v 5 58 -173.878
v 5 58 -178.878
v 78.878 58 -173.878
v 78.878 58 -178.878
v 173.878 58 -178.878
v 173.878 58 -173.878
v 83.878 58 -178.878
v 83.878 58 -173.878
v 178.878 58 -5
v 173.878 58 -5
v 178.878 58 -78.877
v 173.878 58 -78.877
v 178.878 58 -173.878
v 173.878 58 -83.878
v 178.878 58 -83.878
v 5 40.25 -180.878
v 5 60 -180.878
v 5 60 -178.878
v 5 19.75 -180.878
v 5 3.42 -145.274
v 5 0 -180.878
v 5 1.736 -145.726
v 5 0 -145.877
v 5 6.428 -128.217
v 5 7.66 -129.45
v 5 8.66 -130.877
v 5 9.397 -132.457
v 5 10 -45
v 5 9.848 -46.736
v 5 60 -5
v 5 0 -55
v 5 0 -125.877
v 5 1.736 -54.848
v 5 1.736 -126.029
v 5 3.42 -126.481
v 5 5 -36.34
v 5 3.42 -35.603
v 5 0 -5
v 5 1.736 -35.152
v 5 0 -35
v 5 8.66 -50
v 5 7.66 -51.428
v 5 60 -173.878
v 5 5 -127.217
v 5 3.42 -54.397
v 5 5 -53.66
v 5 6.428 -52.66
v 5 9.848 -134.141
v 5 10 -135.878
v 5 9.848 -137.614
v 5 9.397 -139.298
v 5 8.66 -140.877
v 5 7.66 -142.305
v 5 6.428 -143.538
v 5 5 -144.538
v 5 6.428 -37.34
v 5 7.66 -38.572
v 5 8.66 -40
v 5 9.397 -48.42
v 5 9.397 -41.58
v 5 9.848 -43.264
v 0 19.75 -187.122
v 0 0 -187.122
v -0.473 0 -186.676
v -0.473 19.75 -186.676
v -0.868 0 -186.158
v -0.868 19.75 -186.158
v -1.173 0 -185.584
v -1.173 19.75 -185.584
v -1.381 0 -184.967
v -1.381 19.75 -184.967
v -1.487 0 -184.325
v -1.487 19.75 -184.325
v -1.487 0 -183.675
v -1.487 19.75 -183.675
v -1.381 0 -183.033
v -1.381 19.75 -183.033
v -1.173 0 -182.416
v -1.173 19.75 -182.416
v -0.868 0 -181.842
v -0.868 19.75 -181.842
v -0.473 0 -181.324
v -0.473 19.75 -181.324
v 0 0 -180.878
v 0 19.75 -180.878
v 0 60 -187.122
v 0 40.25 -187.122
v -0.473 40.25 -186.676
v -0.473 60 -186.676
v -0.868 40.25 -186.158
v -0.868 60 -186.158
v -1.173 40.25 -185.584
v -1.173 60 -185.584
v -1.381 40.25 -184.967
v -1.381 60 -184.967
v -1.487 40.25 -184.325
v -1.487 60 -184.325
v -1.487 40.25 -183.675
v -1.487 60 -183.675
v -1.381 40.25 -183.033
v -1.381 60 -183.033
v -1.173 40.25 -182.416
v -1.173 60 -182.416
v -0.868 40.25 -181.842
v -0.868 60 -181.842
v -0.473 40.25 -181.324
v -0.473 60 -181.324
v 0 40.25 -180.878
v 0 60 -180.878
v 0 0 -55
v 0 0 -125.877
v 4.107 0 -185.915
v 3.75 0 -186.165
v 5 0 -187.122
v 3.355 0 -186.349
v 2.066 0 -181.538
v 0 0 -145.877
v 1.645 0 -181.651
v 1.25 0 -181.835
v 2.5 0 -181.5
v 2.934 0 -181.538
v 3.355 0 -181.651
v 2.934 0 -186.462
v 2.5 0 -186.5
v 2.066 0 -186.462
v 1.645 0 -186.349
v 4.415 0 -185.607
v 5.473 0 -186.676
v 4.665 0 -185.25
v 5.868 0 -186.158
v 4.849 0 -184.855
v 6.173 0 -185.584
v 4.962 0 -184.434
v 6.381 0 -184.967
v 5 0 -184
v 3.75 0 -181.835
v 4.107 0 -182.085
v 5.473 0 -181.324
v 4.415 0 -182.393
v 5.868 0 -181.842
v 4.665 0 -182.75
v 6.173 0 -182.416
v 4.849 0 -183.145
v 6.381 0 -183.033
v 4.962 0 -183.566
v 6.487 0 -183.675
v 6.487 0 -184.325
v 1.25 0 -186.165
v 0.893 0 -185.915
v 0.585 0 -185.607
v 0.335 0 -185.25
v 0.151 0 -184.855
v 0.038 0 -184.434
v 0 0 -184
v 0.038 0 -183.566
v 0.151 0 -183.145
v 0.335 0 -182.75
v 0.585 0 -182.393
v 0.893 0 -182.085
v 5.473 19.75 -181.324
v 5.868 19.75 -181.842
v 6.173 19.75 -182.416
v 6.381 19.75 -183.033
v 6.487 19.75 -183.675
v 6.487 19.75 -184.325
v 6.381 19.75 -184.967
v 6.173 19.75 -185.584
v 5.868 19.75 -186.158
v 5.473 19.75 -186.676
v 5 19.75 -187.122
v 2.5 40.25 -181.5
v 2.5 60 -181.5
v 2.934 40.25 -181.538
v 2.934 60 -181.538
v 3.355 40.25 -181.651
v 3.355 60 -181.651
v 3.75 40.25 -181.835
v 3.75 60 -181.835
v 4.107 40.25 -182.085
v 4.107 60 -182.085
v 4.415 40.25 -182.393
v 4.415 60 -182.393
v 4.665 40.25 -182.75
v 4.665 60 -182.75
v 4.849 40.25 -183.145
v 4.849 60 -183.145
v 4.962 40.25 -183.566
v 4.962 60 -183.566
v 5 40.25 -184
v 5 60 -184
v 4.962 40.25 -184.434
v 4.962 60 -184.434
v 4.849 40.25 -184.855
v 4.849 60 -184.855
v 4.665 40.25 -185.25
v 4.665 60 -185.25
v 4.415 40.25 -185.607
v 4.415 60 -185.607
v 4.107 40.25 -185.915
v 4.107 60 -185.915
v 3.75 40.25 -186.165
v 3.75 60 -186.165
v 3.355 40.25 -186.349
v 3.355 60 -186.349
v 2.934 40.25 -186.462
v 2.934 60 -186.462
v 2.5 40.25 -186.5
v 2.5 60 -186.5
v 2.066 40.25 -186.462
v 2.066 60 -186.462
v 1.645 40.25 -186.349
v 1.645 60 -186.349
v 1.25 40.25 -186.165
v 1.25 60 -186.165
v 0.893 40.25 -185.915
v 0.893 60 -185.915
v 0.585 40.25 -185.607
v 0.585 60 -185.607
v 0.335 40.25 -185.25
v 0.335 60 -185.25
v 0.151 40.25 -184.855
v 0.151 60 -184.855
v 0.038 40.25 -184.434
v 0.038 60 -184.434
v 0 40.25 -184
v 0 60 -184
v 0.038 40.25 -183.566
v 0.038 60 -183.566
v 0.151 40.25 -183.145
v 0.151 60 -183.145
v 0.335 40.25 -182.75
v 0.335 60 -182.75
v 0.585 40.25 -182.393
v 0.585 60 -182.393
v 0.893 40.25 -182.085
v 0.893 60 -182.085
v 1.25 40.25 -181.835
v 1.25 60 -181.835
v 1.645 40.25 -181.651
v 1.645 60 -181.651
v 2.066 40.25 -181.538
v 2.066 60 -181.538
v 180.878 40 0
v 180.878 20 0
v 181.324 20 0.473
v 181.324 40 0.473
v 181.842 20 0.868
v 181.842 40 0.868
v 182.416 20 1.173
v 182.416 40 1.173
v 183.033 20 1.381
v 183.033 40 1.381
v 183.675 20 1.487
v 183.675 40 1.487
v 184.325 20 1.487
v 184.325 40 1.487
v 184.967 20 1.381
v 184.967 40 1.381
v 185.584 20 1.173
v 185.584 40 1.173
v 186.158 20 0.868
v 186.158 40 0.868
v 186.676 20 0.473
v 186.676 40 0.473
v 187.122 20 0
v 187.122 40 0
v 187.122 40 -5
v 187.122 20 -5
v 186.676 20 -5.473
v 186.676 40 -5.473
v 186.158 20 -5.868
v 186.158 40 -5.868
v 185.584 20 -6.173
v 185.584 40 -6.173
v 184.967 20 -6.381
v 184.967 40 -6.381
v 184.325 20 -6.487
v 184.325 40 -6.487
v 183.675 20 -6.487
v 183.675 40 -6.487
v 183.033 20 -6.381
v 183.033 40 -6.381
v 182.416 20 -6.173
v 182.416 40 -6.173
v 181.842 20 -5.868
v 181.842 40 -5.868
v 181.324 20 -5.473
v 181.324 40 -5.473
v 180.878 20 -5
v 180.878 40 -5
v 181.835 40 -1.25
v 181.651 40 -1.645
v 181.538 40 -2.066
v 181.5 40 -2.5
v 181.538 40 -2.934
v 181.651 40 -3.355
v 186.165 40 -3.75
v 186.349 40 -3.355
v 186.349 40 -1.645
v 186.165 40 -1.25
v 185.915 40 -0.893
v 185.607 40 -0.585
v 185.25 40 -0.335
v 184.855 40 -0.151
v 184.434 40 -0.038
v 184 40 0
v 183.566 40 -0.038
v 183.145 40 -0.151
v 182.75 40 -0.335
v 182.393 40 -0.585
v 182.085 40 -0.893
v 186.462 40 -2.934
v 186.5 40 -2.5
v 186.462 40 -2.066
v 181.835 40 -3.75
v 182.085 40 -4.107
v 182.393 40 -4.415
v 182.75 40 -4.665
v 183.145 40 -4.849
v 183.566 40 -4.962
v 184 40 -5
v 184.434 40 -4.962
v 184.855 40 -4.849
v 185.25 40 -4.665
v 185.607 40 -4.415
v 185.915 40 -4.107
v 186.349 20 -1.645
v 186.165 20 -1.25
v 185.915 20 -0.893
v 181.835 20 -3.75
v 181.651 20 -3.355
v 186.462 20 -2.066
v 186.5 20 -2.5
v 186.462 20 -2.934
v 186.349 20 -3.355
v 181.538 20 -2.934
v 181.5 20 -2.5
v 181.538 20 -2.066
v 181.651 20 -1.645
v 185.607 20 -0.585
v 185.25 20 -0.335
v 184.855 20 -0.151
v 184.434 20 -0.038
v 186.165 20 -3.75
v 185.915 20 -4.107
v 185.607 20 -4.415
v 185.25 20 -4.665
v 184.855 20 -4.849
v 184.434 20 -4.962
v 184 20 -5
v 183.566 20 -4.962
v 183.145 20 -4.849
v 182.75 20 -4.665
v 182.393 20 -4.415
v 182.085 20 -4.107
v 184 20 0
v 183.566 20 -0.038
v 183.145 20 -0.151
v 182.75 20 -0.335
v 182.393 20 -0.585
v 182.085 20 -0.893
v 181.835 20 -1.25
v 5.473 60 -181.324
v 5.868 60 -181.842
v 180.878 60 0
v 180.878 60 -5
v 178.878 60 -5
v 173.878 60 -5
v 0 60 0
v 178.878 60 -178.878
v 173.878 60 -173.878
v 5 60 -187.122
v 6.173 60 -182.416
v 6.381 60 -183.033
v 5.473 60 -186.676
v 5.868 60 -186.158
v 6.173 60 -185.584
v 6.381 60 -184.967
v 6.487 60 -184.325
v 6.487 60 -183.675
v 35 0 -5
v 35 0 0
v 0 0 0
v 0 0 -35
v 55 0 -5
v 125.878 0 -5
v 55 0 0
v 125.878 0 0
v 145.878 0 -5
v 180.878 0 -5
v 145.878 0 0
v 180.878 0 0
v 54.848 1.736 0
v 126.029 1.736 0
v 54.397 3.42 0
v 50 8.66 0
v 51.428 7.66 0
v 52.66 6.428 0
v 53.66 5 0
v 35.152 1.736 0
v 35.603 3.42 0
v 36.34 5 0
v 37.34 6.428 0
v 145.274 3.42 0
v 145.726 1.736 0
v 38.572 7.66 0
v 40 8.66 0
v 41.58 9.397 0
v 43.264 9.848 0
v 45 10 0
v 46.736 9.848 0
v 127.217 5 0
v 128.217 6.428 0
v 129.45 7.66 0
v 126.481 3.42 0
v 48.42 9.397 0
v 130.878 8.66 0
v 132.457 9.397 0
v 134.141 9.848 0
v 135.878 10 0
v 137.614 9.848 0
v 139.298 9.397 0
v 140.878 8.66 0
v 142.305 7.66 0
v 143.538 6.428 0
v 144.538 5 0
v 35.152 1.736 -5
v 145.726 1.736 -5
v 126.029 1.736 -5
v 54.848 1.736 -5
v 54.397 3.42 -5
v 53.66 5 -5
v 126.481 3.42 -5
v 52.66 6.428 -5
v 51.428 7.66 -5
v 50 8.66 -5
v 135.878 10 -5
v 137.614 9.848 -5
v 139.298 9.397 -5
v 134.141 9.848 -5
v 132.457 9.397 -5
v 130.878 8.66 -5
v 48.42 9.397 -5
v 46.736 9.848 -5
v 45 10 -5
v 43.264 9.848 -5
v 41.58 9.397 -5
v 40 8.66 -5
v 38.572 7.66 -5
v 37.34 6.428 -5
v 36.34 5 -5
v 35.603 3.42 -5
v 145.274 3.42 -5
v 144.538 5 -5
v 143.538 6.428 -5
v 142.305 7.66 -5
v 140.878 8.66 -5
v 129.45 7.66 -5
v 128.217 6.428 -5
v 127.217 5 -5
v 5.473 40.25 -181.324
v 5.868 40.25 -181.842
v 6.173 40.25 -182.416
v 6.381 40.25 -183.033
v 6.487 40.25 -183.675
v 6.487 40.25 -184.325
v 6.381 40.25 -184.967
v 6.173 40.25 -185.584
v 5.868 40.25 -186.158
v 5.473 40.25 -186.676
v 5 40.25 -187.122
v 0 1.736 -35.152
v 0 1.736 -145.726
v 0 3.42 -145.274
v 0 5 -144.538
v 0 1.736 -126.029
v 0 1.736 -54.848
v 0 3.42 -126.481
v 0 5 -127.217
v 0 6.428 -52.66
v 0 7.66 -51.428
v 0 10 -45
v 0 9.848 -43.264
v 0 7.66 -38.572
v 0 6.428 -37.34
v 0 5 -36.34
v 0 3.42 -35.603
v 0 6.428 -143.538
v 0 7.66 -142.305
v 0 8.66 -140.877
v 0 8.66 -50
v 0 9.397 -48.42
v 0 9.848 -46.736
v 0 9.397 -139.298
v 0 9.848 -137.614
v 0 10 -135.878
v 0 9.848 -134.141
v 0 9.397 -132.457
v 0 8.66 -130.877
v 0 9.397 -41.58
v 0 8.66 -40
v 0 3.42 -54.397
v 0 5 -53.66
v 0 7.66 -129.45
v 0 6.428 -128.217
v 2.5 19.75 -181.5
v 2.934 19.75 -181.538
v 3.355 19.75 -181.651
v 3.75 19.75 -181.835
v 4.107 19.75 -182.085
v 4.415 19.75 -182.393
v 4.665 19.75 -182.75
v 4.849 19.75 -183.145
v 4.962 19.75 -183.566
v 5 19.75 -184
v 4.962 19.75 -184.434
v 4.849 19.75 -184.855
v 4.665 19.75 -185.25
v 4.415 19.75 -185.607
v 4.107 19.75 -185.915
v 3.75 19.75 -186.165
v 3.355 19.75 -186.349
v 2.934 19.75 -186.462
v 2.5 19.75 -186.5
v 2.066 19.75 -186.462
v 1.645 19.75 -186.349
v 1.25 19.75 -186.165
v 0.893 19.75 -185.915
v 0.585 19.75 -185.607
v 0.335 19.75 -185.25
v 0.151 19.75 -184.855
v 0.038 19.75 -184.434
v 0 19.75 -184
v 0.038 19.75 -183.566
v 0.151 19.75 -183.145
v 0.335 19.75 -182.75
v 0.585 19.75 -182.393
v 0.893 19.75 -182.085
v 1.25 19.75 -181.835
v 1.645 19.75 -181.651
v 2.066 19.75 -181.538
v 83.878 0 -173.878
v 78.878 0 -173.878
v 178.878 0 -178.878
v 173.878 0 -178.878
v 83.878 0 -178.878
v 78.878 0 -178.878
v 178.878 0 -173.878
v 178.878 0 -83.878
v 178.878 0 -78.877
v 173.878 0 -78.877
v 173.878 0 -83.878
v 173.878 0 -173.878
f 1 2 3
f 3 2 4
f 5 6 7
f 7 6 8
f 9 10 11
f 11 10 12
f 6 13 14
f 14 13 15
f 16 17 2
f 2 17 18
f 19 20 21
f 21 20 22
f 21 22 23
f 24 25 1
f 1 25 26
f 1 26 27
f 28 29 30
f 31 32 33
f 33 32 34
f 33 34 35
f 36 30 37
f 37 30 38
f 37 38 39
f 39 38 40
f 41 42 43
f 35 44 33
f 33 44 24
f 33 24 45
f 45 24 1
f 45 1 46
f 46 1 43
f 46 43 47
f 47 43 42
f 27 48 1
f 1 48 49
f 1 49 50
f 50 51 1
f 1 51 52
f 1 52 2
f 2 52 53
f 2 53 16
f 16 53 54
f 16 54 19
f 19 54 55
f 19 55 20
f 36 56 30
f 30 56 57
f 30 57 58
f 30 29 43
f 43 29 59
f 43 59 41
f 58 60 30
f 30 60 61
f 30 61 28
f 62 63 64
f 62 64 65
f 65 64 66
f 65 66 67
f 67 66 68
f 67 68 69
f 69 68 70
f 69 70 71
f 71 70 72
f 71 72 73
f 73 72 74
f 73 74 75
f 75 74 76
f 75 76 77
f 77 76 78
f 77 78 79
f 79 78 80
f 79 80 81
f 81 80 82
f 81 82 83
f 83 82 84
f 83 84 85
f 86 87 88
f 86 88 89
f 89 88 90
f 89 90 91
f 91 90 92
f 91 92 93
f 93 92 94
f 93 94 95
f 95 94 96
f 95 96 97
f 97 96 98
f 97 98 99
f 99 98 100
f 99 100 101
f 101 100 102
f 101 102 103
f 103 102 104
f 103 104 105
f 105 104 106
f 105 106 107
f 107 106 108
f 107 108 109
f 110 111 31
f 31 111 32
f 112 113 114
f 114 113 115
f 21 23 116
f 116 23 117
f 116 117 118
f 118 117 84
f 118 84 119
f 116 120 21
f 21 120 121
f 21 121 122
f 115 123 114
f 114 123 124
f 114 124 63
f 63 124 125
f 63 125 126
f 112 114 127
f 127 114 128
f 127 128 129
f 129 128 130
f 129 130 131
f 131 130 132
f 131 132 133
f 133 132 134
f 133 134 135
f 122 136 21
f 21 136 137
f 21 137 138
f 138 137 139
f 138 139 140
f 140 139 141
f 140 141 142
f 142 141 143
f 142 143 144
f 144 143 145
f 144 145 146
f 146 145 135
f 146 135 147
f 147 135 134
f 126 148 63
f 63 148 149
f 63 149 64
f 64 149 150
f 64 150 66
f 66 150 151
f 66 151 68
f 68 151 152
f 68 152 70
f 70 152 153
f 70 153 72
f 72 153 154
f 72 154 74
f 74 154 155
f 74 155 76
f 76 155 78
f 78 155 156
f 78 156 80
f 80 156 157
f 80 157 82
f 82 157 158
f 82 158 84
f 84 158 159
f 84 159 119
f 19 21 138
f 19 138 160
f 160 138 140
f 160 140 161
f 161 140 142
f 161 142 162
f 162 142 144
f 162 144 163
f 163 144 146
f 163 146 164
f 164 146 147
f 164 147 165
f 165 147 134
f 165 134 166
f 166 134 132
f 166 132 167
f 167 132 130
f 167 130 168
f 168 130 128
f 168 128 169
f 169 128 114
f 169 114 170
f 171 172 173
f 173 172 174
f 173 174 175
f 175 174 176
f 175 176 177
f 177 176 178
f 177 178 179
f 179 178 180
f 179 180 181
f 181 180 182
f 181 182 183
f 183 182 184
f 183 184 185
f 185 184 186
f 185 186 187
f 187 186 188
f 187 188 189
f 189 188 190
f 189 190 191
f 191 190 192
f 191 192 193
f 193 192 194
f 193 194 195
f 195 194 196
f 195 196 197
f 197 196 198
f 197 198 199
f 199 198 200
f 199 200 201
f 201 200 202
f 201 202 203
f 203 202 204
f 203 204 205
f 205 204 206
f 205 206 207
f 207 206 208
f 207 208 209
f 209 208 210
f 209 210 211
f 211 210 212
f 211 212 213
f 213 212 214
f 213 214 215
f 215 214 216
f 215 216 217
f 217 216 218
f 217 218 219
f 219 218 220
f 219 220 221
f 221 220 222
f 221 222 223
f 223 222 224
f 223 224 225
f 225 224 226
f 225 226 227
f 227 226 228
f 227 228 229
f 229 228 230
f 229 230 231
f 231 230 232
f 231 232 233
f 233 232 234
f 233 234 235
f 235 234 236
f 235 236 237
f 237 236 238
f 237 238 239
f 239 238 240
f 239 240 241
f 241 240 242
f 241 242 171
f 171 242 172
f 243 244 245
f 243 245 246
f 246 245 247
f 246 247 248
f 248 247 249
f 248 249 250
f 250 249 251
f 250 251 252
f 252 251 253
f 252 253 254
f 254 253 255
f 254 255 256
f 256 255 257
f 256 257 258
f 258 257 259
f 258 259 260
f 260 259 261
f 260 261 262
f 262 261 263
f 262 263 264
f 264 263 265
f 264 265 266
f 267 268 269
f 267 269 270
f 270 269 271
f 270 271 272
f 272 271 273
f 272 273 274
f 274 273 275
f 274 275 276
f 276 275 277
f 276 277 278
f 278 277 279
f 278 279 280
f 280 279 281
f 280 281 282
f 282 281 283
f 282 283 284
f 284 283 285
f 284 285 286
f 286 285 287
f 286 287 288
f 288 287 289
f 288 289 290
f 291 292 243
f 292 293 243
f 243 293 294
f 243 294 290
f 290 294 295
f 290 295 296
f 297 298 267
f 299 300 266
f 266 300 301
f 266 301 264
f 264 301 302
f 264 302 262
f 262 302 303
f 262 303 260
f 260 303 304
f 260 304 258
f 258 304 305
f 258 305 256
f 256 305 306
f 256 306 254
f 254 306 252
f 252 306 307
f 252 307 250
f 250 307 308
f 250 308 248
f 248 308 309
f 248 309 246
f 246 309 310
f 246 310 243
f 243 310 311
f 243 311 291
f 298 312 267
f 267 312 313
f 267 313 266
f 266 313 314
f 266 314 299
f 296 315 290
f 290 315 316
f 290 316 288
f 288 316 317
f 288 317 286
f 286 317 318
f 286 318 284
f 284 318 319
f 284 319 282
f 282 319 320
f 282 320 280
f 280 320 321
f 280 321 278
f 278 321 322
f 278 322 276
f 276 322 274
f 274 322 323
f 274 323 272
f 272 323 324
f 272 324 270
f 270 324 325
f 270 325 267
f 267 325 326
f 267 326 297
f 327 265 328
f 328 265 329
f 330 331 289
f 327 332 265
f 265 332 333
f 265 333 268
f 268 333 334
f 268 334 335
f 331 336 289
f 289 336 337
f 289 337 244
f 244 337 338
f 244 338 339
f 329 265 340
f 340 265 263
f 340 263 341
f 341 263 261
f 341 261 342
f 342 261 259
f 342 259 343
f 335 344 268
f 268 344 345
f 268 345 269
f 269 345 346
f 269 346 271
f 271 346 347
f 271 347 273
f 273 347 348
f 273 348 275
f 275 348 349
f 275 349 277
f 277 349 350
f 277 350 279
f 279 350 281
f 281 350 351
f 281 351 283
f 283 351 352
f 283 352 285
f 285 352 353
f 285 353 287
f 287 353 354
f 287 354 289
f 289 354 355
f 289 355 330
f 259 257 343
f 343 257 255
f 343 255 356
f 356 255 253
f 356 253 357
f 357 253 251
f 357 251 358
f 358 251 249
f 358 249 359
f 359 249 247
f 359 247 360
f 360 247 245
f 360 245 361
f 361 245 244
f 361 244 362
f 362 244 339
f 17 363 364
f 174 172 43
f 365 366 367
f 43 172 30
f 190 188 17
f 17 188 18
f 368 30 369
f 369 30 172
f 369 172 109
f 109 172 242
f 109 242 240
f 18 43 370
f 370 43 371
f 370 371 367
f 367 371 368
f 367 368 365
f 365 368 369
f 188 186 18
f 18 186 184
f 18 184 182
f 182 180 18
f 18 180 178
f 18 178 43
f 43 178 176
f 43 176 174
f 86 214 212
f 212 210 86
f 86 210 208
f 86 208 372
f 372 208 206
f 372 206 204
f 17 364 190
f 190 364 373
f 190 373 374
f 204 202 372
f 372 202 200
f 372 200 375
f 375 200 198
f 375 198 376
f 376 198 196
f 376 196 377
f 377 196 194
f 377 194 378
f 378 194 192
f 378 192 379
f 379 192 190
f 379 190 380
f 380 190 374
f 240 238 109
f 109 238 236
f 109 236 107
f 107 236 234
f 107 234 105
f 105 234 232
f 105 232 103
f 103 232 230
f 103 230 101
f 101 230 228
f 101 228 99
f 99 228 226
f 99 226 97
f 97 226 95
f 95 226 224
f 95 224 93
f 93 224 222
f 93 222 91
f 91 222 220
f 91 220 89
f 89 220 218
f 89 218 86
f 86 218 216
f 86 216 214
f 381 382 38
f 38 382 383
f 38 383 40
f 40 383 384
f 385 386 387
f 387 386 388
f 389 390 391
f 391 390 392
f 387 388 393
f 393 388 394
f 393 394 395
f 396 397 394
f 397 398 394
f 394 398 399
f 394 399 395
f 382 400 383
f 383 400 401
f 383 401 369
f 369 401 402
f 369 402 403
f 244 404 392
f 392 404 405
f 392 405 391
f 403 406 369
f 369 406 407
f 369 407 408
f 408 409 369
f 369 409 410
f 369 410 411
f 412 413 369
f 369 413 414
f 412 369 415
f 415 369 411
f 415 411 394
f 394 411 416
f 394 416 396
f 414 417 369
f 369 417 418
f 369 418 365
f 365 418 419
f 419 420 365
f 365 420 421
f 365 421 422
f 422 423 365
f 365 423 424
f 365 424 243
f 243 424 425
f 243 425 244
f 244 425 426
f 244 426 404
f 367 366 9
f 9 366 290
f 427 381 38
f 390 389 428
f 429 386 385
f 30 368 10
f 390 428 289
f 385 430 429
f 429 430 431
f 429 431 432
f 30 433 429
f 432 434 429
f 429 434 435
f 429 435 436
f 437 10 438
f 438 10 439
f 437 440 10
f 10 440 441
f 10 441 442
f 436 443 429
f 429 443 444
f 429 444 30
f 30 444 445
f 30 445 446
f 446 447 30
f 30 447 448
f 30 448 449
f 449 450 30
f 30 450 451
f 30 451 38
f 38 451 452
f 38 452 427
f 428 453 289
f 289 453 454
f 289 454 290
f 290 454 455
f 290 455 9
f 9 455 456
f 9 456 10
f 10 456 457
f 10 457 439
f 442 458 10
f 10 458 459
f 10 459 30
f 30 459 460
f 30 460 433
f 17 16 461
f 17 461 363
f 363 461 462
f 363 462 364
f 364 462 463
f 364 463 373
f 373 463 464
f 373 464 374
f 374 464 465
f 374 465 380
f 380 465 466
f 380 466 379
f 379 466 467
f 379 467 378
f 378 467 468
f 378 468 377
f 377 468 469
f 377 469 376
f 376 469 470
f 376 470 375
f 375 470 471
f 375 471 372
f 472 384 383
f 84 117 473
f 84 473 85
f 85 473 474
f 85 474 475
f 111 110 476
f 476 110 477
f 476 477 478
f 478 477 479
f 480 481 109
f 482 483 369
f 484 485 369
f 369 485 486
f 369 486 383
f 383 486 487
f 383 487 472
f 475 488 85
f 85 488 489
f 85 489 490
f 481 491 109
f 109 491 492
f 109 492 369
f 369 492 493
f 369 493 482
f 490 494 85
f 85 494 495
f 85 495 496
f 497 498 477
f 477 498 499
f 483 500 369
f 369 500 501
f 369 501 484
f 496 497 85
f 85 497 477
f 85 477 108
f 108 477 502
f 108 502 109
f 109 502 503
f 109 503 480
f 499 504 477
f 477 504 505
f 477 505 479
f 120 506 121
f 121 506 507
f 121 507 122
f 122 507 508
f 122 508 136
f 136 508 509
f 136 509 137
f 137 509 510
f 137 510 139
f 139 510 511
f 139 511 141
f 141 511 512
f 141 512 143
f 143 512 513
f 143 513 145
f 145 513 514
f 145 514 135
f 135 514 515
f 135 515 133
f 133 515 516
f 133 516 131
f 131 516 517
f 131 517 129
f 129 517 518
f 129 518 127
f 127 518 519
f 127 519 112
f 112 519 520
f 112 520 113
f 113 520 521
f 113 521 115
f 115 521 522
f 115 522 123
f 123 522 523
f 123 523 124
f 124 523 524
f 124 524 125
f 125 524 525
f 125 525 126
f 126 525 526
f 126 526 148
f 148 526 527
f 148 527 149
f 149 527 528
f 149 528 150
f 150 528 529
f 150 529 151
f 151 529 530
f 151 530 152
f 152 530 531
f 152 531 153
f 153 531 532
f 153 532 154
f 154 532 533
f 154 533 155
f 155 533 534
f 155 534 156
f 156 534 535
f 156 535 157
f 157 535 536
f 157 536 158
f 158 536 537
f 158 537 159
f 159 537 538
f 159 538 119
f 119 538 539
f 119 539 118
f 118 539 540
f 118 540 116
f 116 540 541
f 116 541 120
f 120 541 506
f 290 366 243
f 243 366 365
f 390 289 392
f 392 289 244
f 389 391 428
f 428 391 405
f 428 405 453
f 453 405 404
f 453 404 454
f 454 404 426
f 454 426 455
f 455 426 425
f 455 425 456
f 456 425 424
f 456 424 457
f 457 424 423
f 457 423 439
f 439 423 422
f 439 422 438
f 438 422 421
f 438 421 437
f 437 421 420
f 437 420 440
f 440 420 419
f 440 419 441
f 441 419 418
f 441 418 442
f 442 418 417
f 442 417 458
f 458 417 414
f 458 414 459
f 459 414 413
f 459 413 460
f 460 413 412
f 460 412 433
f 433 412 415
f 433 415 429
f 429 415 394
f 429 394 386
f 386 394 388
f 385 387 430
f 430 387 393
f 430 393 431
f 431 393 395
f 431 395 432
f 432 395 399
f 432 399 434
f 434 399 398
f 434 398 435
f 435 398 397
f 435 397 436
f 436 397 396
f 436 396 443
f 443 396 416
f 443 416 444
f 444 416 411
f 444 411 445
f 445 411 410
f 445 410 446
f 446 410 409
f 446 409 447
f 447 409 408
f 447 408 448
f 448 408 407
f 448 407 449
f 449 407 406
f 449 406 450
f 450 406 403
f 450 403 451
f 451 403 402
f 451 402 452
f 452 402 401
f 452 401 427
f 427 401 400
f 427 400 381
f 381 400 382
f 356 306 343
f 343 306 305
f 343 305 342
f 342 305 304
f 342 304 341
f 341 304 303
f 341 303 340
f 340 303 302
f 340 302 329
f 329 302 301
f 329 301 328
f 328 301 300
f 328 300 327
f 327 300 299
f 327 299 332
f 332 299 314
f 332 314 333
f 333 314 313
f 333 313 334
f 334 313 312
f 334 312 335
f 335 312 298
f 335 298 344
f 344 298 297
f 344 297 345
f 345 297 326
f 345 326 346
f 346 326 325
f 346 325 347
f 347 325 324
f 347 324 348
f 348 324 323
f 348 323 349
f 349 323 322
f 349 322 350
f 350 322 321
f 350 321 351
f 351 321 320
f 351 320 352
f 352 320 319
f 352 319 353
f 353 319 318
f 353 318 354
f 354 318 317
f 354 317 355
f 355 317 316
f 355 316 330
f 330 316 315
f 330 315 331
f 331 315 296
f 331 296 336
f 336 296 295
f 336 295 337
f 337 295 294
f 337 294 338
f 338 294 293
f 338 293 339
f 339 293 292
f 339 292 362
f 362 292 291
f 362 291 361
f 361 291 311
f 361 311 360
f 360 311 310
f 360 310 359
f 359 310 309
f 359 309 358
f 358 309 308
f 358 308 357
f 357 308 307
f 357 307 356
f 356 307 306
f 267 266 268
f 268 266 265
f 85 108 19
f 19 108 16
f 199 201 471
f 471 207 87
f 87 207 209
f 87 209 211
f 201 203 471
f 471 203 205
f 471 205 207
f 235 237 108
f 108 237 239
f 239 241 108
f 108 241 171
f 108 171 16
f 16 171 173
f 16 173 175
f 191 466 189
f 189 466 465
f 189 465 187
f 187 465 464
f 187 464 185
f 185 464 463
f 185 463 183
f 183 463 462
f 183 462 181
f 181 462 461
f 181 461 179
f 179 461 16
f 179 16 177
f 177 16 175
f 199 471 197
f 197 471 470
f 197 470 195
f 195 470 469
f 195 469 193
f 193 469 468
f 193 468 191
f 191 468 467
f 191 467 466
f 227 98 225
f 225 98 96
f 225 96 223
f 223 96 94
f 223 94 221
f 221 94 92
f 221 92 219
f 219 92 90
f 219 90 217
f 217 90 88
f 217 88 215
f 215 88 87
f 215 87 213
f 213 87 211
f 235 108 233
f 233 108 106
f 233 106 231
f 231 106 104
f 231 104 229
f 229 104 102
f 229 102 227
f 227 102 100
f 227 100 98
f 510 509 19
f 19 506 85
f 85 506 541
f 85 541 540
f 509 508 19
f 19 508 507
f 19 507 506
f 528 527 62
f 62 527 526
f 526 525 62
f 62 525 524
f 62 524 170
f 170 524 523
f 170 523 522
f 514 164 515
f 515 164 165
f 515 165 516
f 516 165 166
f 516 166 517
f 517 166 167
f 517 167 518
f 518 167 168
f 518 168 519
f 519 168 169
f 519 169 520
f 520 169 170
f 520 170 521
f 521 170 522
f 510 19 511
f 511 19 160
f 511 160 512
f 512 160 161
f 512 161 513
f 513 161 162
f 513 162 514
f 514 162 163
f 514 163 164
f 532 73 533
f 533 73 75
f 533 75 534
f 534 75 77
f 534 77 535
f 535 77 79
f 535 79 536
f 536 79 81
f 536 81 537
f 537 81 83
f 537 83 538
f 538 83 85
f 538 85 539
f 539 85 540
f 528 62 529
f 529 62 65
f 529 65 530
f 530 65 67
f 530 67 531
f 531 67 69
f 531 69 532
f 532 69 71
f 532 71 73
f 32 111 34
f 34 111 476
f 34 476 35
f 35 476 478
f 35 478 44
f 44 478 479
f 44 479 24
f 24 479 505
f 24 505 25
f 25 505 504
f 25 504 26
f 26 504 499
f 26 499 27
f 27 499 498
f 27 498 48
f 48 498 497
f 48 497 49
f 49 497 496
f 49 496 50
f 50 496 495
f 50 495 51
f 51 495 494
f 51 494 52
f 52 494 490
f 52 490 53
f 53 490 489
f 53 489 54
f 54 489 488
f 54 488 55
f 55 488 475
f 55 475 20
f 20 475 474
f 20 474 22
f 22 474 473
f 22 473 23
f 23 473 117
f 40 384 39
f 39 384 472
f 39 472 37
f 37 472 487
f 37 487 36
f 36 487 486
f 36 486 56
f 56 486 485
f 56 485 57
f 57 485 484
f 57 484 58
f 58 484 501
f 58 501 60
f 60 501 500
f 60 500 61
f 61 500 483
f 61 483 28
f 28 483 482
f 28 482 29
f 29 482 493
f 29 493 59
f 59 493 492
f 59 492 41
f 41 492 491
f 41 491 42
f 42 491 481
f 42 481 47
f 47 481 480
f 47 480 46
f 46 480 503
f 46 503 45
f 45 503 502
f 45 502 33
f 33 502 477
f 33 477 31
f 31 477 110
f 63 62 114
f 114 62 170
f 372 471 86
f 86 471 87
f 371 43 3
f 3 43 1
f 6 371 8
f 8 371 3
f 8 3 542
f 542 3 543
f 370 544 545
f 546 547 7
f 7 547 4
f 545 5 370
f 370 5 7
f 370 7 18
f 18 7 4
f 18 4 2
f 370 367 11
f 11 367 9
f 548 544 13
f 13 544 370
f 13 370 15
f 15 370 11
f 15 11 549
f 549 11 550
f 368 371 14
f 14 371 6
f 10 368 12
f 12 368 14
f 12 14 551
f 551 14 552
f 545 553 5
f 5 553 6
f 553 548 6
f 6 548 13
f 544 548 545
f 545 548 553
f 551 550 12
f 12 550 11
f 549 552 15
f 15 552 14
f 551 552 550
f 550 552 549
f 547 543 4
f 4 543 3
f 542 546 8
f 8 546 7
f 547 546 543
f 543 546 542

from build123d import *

# Parameters (mm, degrees)
BOSS_EXTRUDE1_DEPTH     = 60
SKETCH2_R               = 2.5
CUT_EXTRUDE1_DEPTH      = 60
SKETCH4_W               = 7.122498999
SKETCH4_H               = 20
CUT_EXTRUDE3_DEPTH      = 2.5
CUT_EXTRUDE3_DEPTH_BACK = 189
CUT_EXTRUDE4_DEPTH      = 21
CUT_EXTRUDE4_DEPTH_BACK = 41
SKETCH6_W               = 8.505604829
SKETCH6_H               = 20.5
CUT_EXTRUDE6_DEPTH      = 2.5
CUT_EXTRUDE6_DEPTH_BACK = 188.122498999
CUT_EXTRUDE7_DEPTH      = 1
CUT_EXTRUDE7_DEPTH_BACK = 61
BOSS_EXTRUDE2_DEPTH     = 2
SKETCH9_W               = 5
SKETCH9_H               = 5
BOSS_EXTRUDE3_DEPTH     = 58


with BuildPart() as part:
    # Sketch1 → Boss-Extrude1 (new body)
    with BuildSketch(Plane(origin=(0, 0, 0), x_dir=(1, 0, 0), z_dir=(0, 1, 0))):
        with BuildLine():
            Line((0, 0), (180, 0))
            Line((180, 0), (180.877501001, 0))
            ThreePointArc((180.877501001, 0), (188, 2.5), (180.877501001, 5))
            Line((180.877501001, 5), (180, 5))
            Line((180, 5), (5, 5))
            Line((5, 5), (5, 180))
            Line((5, 180), (5, 180.877501001))
            ThreePointArc((5, 180.877501001), (2.5, 188), (0, 180.877501001))
            Line((0, 180.877501001), (0, 180))
            Line((0, 180), (0, 0))
        make_face()
    extrude(amount=BOSS_EXTRUDE1_DEPTH)

    # Sketch2 → Cut-Extrude1 (cut)
    with BuildSketch(Plane(origin=(0, 60, 0), x_dir=(1, 0, 0), z_dir=(0, 1, 0))):
        with Locations((184, 2.5)):
            Circle(SKETCH2_R)
        with Locations((2.5, 184)):
            Circle(SKETCH2_R)
    extrude(amount=-CUT_EXTRUDE1_DEPTH, mode=Mode.SUBTRACT)

    # Sketch4 → Cut-Extrude3 (cut, two sides)
    with BuildSketch(Plane.XY) as cut_extrude3_sk:
        with BuildLine():
            ThreePointArc((35, 0), (45, -10), (55, 0))
            Line((55, 0), (45, 0))
            Line((45, 0), (35, 0))
        make_face()
        with BuildLine():
            Line((45, 0), (55, 0))
            ThreePointArc((55, 0), (45, 10), (35, 0))
            Line((35, 0), (45, 0))
        make_face()
        with BuildLine():
            ThreePointArc((125.877501001, 0), (135.877501001, -10), (145.877501001, 0))
            Line((145.877501001, 0), (135.877501001, 0))
            Line((135.877501001, 0), (125.877501001, 0))
        make_face()
        with BuildLine():
            Line((135.877501001, 0), (145.877501001, 0))
            ThreePointArc((145.877501001, 0), (135.877501001, 10), (125.877501001, 0))
            Line((125.877501001, 0), (135.877501001, 0))
        make_face()
        with Locations((184.438750501, 10)):
            Rectangle(SKETCH4_W, SKETCH4_H)
        with Locations((184.438750501, 50)):
            Rectangle(SKETCH4_W, SKETCH4_H)
    extrude(amount=CUT_EXTRUDE3_DEPTH, mode=Mode.SUBTRACT)
    extrude(cut_extrude3_sk.sketch, amount=-CUT_EXTRUDE3_DEPTH_BACK, mode=Mode.SUBTRACT)

    # Sketch5 → Cut-Extrude4 (cut, two sides)
    with BuildSketch(Plane(origin=(0, 40, 0), x_dir=(1, 0, 0), z_dir=(0, 1, 0))) as cut_extrude4_sk:
        with BuildLine():
            Line((187.122498999, 5), (187.122498999, 2.5))
            Line((187.122498999, 2.5), (187.122498999, 0))
            ThreePointArc((187.122498999, 0), (188, 2.5), (187.122498999, 5))
        make_face()
    extrude(amount=CUT_EXTRUDE4_DEPTH, mode=Mode.SUBTRACT)
    extrude(cut_extrude4_sk.sketch, amount=-CUT_EXTRUDE4_DEPTH_BACK, mode=Mode.SUBTRACT)

    # Sketch6 → Cut-Extrude6 (cut, two sides)
    with BuildSketch(Plane.ZY) as cut_extrude6_sk:
        with BuildLine():
            ThreePointArc((-145.877501001, 0), (-135.877501001, -10), (-125.877501001, 0))
            Line((-125.877501001, 0), (-135.877501001, 0))
            Line((-135.877501001, 0), (-145.877501001, 0))
        make_face()
        with BuildLine():
            Line((-135.877501001, 0), (-125.877501001, 0))
            ThreePointArc((-125.877501001, 0), (-135.877501001, 10), (-145.877501001, 0))
            Line((-145.877501001, 0), (-135.877501001, 0))
        make_face()
        with BuildLine():
            ThreePointArc((-55, 0), (-45, -10), (-35, 0))
            Line((-35, 0), (-45, 0))
            Line((-45, 0), (-55, 0))
        make_face()
        with BuildLine():
            Line((-45, 0), (-35, 0))
            ThreePointArc((-35, 0), (-45, 10), (-55, 0))
            Line((-55, 0), (-45, 0))
        make_face()
        with Locations((-185.130303416, 30)):
            Rectangle(SKETCH6_W, SKETCH6_H)
    extrude(amount=CUT_EXTRUDE6_DEPTH, mode=Mode.SUBTRACT)
    extrude(cut_extrude6_sk.sketch, amount=-CUT_EXTRUDE6_DEPTH_BACK, mode=Mode.SUBTRACT)

    # Sketch7 → Cut-Extrude7 (cut, two sides)
    with BuildSketch(Plane(origin=(0, 60, 0), x_dir=(1, 0, 0), z_dir=(0, 1, 0))) as cut_extrude7_sk:
        with BuildLine():
            ThreePointArc((5, 187.122498999), (2.5, 188), (0, 187.122498999))
            Line((0, 187.122498999), (2.5, 187.122498999))
            Line((2.5, 187.122498999), (5, 187.122498999))
        make_face()
    extrude(amount=CUT_EXTRUDE7_DEPTH, mode=Mode.SUBTRACT)
    extrude(cut_extrude7_sk.sketch, amount=-CUT_EXTRUDE7_DEPTH_BACK, mode=Mode.SUBTRACT)

    # Sketch8 → Boss-Extrude2 (add)
    with BuildSketch(Plane(origin=(0, 60, 0), x_dir=(1, 0, 0), z_dir=(0, 1, 0))):
        Polygon((178.877501001, 178.877501001), (5, 178.877501001), (5, 173.877501001), (173.877501001, 173.877501001), (173.877501001, 5), (178.877501001, 5), align=None)
    extrude(amount=-BOSS_EXTRUDE2_DEPTH)

    # Sketch9 → Boss-Extrude3 (add)
    with BuildSketch(Plane(origin=(0, 58, 0), x_dir=(-1, 0, 0), z_dir=(0, -1, 0))):
        with Locations((-176.377501001, 176.377501001)):
            Rectangle(SKETCH9_W, SKETCH9_H)
        with Locations((-176.377501001, 81.377501001)):
            Rectangle(SKETCH9_W, SKETCH9_H)
        with Locations((-81.377501001, 176.377501001)):
            Rectangle(SKETCH9_W, SKETCH9_H)
    extrude(amount=BOSS_EXTRUDE3_DEPTH)


solid = part.part
